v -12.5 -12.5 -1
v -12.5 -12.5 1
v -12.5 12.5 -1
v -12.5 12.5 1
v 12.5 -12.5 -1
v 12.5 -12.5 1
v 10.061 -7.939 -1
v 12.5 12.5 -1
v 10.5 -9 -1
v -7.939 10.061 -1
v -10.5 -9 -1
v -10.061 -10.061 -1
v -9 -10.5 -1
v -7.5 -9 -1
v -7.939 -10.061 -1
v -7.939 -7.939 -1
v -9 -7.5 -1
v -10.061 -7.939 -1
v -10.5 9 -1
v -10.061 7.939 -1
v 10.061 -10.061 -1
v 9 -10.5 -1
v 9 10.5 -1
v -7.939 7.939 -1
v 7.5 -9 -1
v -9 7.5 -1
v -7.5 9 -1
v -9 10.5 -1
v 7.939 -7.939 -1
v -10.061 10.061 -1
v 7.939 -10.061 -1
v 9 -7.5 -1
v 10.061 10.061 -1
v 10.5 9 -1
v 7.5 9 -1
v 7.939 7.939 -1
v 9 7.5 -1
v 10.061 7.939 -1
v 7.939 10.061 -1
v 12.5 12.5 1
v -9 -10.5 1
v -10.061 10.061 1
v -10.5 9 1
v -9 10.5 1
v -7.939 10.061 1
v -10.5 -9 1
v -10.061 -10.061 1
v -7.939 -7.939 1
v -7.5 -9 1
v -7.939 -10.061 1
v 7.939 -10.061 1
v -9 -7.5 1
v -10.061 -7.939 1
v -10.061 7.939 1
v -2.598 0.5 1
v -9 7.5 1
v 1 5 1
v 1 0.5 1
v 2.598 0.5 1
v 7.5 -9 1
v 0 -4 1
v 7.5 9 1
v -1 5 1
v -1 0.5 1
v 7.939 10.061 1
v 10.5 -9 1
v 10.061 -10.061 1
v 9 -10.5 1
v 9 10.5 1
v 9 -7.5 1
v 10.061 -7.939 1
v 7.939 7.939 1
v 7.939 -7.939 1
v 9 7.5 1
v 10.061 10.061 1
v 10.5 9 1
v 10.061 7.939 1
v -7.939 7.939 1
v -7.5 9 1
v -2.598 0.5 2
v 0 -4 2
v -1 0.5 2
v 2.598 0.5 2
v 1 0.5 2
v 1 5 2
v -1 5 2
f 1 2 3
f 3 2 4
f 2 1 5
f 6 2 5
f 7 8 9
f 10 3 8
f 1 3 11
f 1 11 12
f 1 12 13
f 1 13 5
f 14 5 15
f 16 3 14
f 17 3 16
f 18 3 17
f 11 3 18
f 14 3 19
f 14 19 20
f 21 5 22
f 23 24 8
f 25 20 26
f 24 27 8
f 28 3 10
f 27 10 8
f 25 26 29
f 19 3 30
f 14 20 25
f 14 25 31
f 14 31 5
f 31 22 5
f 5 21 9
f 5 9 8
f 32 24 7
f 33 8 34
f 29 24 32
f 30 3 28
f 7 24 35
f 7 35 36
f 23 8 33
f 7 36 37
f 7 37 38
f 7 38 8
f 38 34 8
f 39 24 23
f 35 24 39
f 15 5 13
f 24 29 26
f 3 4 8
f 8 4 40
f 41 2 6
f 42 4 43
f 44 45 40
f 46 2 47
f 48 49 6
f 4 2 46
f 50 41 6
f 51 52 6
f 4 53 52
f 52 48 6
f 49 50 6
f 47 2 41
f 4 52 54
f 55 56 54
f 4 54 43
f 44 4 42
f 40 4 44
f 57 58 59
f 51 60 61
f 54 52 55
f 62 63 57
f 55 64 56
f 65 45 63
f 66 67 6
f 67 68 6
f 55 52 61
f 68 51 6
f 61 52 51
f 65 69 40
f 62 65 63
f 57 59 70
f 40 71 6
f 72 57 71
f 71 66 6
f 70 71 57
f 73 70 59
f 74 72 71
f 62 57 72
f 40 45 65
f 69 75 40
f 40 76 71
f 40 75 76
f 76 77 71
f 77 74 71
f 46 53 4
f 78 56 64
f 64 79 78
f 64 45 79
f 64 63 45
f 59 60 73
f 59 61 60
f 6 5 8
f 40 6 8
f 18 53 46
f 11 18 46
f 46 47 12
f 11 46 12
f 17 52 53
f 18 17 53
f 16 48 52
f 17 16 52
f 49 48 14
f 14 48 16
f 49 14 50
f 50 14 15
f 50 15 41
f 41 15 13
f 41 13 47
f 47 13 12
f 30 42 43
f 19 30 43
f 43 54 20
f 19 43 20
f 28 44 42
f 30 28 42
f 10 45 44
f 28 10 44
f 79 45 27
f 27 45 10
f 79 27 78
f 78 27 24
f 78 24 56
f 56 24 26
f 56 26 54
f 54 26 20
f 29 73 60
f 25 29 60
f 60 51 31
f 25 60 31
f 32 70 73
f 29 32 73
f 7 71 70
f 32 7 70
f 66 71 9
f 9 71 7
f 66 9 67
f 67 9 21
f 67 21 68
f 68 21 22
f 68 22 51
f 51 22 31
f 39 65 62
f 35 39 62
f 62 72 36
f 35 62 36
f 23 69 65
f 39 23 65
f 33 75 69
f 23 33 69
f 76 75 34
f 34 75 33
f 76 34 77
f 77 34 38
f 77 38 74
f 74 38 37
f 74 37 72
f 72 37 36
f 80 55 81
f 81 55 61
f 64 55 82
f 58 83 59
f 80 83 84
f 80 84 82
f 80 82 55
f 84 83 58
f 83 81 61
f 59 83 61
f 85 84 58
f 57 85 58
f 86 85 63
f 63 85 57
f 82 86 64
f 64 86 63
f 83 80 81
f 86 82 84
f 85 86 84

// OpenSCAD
// file: arrow.scad
module arrow(){
	//arrowBody
	translate([0,-1,0]) color([0,1,1]) cube(size=[2.5,2,5]);
	//arrowHead
	translate([0,0,-1]) color([0,1,1]) rotate([0,90,0]) cylinder(h=2.5,r=3,$fn=3);
}

arrow();
// main file
use <arrow.scad>

module beamSplitterMountTop(){
	//arrow
	translate([0,0,2]){
		rotate([0,90,90]){
			arrow();
		}
	}

	difference(){
		translate([0,0,0]) color([.95,.95,.95]) cube(size=[25,25,2],center=true);
		//topScrewholes
		translate([9,9,0]) color([1,0,0]) cylinder(h=5,r=1.5,$fn=8,center=true);
		translate([9,-9,0]) color([1,0,0]) cylinder(h=5,r=1.5,$fn=8,center=true);
		translate([-9,9,0]) color([1,0,0]) cylinder(h=5,r=1.5,$fn=8,center=true);
		translate([-9,-9,0]) color([1,0,0]) cylinder(h=5,r=1.5,$fn=8,center=true);
	}
}

translate([0,0,0]){
	beamSplitterMountTop();
}
